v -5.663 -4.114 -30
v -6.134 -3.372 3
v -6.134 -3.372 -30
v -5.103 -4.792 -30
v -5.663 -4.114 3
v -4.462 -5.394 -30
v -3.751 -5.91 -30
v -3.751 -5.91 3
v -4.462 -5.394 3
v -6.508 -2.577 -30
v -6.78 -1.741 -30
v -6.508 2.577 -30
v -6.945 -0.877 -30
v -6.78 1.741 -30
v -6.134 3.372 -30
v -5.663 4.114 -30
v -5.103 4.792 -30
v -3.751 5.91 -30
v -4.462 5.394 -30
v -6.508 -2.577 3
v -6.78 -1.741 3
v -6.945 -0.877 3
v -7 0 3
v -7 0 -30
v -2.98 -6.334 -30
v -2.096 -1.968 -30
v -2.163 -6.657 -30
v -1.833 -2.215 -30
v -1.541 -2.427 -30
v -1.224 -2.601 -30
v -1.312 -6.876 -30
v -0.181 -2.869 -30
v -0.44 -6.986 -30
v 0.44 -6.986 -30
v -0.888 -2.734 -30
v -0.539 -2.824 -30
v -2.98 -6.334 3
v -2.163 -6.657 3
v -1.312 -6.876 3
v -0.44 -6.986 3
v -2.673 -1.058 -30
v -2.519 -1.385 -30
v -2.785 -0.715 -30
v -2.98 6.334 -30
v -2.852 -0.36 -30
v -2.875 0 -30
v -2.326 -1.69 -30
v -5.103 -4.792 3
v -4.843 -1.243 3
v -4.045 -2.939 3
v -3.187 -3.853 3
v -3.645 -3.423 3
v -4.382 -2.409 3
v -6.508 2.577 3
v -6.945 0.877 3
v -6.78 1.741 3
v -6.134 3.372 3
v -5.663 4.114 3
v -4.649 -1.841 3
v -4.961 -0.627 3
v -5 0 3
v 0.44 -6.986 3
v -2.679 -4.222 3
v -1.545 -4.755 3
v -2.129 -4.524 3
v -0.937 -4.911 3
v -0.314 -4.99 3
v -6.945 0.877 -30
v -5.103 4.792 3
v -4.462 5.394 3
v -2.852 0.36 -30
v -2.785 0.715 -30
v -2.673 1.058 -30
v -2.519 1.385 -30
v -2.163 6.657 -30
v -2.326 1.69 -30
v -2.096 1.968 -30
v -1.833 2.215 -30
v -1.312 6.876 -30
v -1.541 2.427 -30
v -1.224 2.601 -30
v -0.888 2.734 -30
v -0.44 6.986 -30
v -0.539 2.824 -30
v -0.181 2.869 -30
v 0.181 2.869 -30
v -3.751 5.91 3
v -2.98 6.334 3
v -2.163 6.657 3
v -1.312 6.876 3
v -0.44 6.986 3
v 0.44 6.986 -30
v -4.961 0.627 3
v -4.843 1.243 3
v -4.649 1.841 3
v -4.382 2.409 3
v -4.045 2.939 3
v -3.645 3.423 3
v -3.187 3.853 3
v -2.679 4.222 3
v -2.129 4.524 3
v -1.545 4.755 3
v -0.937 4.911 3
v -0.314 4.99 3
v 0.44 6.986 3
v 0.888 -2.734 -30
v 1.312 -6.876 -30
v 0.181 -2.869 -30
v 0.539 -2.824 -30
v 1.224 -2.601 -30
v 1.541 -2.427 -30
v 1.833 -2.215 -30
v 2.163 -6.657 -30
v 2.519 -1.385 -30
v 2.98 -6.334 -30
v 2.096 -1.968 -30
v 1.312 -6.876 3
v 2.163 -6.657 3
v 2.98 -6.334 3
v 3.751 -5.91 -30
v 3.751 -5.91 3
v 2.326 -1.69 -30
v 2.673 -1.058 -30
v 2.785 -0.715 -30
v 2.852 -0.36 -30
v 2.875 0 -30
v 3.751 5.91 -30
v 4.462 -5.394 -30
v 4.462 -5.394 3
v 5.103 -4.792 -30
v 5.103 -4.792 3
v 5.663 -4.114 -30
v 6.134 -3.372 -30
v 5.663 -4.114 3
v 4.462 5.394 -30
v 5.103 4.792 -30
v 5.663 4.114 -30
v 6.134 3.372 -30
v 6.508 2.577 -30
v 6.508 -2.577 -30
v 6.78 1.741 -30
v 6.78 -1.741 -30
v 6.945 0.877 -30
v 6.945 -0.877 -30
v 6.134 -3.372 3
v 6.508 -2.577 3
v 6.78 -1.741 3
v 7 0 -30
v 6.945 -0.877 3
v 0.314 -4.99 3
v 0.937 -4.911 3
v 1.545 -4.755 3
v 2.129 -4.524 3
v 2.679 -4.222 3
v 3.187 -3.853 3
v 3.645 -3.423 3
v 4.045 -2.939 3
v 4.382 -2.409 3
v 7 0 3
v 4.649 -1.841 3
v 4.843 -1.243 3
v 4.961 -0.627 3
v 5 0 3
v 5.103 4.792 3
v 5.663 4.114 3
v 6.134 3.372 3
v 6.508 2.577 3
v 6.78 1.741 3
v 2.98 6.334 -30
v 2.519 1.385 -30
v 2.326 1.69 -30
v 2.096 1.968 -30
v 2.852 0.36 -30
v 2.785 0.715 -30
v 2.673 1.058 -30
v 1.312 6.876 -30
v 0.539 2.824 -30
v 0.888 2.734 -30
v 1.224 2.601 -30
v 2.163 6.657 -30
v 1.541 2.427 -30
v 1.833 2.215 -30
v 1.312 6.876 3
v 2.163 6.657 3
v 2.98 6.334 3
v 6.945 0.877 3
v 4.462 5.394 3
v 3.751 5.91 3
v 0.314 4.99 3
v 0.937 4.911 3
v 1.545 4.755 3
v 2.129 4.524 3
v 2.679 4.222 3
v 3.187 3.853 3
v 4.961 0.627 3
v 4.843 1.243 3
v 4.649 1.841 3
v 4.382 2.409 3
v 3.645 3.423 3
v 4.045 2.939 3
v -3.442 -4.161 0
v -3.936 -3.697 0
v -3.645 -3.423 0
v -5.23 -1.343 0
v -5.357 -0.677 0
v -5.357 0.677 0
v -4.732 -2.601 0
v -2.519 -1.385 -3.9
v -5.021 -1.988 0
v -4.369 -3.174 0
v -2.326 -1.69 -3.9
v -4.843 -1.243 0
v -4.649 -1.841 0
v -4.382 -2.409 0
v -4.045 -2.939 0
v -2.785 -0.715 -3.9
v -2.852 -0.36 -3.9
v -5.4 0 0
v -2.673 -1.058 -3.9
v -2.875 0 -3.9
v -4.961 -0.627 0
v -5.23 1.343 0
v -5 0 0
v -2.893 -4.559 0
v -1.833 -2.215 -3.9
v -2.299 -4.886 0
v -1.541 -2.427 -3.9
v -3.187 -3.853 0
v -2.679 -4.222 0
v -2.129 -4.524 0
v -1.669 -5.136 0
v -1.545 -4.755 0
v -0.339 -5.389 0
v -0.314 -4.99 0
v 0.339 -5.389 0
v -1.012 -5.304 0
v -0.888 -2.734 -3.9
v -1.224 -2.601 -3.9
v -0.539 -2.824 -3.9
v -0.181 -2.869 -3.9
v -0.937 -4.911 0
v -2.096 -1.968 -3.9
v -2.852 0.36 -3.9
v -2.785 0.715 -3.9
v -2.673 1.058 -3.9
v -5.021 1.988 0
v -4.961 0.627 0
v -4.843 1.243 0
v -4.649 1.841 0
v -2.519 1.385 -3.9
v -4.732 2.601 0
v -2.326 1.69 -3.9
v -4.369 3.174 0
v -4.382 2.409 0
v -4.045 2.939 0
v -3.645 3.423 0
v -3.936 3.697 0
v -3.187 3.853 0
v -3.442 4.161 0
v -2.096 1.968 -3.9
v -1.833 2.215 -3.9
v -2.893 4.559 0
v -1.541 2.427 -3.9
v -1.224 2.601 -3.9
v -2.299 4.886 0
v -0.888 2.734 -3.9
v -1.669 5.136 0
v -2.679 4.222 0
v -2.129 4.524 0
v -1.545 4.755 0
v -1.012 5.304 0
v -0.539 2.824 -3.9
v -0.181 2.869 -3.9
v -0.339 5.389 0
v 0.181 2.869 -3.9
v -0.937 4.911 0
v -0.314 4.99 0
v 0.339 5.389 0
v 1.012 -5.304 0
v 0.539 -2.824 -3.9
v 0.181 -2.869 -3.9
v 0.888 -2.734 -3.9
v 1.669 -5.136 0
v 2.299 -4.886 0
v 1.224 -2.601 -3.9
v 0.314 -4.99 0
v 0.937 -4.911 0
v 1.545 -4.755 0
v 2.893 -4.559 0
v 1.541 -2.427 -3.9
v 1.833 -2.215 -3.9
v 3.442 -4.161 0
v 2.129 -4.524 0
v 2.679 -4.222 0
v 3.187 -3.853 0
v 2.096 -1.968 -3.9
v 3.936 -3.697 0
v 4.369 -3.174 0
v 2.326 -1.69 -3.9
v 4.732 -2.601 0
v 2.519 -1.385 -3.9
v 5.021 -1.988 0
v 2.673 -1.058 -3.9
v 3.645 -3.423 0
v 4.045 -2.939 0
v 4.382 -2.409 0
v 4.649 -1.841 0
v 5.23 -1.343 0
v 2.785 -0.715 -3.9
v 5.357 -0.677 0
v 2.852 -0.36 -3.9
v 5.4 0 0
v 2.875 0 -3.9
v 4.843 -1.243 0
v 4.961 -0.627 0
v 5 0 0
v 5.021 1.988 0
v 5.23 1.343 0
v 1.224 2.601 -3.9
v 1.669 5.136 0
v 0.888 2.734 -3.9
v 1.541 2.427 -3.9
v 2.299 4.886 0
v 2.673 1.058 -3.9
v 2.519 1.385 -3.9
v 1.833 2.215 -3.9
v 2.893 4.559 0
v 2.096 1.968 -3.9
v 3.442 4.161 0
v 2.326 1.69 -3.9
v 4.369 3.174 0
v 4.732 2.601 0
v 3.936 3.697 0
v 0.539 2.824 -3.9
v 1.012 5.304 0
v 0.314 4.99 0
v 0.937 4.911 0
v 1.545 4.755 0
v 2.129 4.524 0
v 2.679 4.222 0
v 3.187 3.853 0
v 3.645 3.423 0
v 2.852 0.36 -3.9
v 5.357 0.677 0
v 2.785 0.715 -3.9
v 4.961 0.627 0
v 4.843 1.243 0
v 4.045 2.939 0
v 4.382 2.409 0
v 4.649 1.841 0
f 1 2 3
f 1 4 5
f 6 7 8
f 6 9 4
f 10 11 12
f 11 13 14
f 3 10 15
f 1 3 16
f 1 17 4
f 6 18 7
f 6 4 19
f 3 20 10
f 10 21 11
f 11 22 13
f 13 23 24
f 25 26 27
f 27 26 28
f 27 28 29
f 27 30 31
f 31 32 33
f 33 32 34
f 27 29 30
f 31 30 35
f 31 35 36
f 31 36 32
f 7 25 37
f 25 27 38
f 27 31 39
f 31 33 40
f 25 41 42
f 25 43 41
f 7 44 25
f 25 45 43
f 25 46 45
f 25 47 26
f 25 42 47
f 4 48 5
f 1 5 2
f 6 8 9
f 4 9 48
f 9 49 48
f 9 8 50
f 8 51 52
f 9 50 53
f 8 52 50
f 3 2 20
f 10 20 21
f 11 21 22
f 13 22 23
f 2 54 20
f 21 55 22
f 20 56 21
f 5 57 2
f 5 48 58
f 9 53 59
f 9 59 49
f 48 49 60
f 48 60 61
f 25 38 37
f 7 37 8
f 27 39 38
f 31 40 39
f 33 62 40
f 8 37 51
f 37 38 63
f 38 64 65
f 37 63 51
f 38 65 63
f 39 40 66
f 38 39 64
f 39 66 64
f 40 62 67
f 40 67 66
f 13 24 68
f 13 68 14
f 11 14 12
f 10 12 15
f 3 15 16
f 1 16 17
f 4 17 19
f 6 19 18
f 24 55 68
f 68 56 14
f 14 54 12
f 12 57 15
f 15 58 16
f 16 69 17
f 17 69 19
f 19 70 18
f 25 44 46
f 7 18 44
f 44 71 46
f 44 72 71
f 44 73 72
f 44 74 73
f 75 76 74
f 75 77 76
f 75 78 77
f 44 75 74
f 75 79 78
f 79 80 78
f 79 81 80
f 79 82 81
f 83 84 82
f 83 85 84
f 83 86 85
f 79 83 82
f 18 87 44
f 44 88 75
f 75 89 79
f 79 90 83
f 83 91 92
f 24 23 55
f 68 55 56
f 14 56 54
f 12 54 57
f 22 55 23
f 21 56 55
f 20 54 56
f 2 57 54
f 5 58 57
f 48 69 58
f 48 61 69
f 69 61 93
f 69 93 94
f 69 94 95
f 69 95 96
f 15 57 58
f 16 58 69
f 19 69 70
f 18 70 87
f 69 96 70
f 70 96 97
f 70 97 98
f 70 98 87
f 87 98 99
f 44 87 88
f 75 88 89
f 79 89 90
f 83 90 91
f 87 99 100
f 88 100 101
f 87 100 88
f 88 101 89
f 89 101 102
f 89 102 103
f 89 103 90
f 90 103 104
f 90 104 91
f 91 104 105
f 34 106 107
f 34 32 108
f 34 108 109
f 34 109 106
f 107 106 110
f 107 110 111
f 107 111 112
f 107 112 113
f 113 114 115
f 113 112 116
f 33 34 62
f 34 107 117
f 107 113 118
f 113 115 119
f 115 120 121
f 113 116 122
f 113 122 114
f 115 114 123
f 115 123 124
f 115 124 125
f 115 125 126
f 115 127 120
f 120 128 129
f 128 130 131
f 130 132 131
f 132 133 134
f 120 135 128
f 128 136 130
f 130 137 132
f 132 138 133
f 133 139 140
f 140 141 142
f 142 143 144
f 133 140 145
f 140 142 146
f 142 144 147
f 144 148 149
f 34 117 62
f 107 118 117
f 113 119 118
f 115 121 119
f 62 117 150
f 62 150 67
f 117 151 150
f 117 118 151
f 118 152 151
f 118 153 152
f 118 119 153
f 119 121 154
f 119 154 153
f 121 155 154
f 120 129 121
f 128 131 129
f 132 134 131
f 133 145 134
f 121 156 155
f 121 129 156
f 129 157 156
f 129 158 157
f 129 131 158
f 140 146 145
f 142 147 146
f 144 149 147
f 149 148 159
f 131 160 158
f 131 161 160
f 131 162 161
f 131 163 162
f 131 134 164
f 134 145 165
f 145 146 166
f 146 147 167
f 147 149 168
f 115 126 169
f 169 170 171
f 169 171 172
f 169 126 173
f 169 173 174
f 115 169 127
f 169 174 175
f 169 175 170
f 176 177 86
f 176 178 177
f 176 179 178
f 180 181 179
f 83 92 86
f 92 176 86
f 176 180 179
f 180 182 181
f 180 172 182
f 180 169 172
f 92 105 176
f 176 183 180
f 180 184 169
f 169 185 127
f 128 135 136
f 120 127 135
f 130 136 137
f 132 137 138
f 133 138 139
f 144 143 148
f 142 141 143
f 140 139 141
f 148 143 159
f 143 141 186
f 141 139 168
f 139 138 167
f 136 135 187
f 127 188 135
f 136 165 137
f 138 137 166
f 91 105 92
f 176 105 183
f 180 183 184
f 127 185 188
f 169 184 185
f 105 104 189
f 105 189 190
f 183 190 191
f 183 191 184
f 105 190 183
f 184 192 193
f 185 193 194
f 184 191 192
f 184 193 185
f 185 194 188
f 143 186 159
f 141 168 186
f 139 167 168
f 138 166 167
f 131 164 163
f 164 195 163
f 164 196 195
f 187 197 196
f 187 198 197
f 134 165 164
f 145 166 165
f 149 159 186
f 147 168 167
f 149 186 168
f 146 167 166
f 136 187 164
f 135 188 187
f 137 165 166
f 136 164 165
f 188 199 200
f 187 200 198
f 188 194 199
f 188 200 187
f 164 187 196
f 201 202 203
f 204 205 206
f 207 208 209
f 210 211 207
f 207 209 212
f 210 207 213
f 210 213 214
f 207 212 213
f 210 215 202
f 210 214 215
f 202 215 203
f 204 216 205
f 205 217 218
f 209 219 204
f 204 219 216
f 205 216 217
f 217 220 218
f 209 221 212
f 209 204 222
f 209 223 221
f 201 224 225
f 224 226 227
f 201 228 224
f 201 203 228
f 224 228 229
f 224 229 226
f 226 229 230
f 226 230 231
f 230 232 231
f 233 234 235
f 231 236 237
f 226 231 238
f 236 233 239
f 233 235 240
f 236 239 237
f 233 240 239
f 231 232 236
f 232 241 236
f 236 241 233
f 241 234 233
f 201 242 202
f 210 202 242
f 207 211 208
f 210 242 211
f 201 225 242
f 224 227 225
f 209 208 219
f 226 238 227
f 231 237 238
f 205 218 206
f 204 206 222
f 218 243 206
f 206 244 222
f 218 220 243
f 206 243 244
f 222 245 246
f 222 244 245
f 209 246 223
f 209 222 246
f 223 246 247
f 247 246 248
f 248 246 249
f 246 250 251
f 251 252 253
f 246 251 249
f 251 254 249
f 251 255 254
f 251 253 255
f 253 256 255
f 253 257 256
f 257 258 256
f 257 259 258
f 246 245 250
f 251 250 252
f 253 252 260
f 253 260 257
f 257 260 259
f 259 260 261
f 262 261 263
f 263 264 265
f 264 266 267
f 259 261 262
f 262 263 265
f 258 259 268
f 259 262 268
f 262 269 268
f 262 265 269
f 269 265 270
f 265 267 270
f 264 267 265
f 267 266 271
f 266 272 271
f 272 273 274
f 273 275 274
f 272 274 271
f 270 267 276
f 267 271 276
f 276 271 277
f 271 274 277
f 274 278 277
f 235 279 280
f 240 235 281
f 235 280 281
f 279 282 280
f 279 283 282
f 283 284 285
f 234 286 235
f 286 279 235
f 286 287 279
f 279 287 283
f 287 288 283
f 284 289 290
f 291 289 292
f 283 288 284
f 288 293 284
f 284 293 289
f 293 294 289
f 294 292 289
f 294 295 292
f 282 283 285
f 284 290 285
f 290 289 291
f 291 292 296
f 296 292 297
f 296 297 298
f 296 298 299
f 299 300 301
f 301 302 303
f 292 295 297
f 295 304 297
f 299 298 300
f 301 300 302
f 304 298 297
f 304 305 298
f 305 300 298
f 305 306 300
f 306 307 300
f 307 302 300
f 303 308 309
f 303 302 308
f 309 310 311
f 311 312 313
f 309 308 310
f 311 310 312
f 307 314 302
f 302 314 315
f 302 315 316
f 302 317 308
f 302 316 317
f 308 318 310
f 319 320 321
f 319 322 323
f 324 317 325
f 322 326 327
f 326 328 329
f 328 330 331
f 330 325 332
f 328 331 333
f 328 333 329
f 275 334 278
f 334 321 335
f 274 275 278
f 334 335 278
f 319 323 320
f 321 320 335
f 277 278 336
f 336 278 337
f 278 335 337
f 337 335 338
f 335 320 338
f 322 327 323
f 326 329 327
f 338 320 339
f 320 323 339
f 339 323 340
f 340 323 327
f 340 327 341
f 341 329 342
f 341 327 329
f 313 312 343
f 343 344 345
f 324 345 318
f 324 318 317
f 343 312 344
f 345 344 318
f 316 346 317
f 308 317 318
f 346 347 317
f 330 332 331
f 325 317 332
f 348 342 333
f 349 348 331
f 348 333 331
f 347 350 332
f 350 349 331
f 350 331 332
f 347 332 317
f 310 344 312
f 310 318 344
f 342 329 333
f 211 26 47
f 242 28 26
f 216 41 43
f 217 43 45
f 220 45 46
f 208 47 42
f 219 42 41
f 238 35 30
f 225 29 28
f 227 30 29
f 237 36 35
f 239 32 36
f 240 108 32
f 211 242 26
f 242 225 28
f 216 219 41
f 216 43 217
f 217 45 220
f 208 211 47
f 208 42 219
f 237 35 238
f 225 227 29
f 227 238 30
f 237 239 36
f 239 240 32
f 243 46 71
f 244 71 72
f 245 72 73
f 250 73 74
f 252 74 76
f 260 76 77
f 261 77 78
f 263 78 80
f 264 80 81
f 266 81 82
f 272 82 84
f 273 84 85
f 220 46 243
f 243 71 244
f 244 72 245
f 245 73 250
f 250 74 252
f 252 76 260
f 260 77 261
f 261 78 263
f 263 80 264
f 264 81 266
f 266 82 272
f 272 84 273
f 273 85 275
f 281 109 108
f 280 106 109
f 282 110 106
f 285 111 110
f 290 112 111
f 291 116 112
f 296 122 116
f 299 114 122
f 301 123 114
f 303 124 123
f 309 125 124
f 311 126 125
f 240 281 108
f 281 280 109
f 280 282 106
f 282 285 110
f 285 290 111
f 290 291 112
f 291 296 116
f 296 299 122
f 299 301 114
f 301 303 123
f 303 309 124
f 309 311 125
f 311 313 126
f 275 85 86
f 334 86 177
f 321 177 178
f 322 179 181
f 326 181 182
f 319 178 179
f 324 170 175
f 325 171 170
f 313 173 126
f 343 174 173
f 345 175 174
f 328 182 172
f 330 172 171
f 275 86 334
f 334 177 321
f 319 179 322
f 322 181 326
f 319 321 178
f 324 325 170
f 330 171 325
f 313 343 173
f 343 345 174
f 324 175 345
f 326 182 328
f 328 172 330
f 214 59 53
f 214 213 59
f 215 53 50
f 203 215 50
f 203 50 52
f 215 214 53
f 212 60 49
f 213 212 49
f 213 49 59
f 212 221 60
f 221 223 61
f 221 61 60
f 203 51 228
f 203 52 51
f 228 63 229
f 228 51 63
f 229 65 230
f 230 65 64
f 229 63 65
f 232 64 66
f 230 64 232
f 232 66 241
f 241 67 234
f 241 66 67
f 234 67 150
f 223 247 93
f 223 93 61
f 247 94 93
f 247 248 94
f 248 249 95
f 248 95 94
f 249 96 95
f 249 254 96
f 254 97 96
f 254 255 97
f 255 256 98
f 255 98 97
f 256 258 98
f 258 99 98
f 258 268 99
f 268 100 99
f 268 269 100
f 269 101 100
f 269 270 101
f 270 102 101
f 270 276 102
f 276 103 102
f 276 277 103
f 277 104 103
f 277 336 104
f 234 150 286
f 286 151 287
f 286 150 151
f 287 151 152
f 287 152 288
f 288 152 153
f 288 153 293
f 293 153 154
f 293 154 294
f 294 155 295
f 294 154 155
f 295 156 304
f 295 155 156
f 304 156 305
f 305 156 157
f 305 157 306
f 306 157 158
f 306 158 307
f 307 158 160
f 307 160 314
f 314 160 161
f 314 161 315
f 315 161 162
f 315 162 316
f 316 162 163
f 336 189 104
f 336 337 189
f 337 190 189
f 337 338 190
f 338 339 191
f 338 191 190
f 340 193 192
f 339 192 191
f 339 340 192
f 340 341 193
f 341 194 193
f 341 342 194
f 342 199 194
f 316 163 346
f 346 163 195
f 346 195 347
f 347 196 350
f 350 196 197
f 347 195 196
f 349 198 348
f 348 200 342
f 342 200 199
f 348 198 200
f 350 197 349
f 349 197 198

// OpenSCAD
$fn = 50;


difference() {
	union() {
		translate(v = [0, 0, -30.0000000000]) {
			cylinder(h = 33, r = 7.0000000000);
		}
		#translate(v = [0, 0, -33.0000000000]) {
			cylinder(h = 33, r = 2.8750000000);
		}
	}
	union() {
		translate(v = [0, 0, 0]) {
			rotate(a = [0, 0, 0]) {
				difference() {
					union() {
						translate(v = [0, 0, -33.0000000000]) {
							cylinder(h = 33, r = 2.6000000000);
						}
						translate(v = [0, 0, -3.9000000000]) {
							cylinder(h = 3.9000000000, r1 = 2.8750000000, r2 = 5.4000000000);
						}
						translate(v = [0, 0, -33.0000000000]) {
							cylinder(h = 33, r = 2.8750000000);
						}
						translate(v = [0, 0, -33.0000000000]) {
							cylinder(h = 33, r = 2.6000000000);
						}
					}
					union();
				}
			}
		}
		#cylinder(h = 3, r = 5.0000000000);
	}
}
